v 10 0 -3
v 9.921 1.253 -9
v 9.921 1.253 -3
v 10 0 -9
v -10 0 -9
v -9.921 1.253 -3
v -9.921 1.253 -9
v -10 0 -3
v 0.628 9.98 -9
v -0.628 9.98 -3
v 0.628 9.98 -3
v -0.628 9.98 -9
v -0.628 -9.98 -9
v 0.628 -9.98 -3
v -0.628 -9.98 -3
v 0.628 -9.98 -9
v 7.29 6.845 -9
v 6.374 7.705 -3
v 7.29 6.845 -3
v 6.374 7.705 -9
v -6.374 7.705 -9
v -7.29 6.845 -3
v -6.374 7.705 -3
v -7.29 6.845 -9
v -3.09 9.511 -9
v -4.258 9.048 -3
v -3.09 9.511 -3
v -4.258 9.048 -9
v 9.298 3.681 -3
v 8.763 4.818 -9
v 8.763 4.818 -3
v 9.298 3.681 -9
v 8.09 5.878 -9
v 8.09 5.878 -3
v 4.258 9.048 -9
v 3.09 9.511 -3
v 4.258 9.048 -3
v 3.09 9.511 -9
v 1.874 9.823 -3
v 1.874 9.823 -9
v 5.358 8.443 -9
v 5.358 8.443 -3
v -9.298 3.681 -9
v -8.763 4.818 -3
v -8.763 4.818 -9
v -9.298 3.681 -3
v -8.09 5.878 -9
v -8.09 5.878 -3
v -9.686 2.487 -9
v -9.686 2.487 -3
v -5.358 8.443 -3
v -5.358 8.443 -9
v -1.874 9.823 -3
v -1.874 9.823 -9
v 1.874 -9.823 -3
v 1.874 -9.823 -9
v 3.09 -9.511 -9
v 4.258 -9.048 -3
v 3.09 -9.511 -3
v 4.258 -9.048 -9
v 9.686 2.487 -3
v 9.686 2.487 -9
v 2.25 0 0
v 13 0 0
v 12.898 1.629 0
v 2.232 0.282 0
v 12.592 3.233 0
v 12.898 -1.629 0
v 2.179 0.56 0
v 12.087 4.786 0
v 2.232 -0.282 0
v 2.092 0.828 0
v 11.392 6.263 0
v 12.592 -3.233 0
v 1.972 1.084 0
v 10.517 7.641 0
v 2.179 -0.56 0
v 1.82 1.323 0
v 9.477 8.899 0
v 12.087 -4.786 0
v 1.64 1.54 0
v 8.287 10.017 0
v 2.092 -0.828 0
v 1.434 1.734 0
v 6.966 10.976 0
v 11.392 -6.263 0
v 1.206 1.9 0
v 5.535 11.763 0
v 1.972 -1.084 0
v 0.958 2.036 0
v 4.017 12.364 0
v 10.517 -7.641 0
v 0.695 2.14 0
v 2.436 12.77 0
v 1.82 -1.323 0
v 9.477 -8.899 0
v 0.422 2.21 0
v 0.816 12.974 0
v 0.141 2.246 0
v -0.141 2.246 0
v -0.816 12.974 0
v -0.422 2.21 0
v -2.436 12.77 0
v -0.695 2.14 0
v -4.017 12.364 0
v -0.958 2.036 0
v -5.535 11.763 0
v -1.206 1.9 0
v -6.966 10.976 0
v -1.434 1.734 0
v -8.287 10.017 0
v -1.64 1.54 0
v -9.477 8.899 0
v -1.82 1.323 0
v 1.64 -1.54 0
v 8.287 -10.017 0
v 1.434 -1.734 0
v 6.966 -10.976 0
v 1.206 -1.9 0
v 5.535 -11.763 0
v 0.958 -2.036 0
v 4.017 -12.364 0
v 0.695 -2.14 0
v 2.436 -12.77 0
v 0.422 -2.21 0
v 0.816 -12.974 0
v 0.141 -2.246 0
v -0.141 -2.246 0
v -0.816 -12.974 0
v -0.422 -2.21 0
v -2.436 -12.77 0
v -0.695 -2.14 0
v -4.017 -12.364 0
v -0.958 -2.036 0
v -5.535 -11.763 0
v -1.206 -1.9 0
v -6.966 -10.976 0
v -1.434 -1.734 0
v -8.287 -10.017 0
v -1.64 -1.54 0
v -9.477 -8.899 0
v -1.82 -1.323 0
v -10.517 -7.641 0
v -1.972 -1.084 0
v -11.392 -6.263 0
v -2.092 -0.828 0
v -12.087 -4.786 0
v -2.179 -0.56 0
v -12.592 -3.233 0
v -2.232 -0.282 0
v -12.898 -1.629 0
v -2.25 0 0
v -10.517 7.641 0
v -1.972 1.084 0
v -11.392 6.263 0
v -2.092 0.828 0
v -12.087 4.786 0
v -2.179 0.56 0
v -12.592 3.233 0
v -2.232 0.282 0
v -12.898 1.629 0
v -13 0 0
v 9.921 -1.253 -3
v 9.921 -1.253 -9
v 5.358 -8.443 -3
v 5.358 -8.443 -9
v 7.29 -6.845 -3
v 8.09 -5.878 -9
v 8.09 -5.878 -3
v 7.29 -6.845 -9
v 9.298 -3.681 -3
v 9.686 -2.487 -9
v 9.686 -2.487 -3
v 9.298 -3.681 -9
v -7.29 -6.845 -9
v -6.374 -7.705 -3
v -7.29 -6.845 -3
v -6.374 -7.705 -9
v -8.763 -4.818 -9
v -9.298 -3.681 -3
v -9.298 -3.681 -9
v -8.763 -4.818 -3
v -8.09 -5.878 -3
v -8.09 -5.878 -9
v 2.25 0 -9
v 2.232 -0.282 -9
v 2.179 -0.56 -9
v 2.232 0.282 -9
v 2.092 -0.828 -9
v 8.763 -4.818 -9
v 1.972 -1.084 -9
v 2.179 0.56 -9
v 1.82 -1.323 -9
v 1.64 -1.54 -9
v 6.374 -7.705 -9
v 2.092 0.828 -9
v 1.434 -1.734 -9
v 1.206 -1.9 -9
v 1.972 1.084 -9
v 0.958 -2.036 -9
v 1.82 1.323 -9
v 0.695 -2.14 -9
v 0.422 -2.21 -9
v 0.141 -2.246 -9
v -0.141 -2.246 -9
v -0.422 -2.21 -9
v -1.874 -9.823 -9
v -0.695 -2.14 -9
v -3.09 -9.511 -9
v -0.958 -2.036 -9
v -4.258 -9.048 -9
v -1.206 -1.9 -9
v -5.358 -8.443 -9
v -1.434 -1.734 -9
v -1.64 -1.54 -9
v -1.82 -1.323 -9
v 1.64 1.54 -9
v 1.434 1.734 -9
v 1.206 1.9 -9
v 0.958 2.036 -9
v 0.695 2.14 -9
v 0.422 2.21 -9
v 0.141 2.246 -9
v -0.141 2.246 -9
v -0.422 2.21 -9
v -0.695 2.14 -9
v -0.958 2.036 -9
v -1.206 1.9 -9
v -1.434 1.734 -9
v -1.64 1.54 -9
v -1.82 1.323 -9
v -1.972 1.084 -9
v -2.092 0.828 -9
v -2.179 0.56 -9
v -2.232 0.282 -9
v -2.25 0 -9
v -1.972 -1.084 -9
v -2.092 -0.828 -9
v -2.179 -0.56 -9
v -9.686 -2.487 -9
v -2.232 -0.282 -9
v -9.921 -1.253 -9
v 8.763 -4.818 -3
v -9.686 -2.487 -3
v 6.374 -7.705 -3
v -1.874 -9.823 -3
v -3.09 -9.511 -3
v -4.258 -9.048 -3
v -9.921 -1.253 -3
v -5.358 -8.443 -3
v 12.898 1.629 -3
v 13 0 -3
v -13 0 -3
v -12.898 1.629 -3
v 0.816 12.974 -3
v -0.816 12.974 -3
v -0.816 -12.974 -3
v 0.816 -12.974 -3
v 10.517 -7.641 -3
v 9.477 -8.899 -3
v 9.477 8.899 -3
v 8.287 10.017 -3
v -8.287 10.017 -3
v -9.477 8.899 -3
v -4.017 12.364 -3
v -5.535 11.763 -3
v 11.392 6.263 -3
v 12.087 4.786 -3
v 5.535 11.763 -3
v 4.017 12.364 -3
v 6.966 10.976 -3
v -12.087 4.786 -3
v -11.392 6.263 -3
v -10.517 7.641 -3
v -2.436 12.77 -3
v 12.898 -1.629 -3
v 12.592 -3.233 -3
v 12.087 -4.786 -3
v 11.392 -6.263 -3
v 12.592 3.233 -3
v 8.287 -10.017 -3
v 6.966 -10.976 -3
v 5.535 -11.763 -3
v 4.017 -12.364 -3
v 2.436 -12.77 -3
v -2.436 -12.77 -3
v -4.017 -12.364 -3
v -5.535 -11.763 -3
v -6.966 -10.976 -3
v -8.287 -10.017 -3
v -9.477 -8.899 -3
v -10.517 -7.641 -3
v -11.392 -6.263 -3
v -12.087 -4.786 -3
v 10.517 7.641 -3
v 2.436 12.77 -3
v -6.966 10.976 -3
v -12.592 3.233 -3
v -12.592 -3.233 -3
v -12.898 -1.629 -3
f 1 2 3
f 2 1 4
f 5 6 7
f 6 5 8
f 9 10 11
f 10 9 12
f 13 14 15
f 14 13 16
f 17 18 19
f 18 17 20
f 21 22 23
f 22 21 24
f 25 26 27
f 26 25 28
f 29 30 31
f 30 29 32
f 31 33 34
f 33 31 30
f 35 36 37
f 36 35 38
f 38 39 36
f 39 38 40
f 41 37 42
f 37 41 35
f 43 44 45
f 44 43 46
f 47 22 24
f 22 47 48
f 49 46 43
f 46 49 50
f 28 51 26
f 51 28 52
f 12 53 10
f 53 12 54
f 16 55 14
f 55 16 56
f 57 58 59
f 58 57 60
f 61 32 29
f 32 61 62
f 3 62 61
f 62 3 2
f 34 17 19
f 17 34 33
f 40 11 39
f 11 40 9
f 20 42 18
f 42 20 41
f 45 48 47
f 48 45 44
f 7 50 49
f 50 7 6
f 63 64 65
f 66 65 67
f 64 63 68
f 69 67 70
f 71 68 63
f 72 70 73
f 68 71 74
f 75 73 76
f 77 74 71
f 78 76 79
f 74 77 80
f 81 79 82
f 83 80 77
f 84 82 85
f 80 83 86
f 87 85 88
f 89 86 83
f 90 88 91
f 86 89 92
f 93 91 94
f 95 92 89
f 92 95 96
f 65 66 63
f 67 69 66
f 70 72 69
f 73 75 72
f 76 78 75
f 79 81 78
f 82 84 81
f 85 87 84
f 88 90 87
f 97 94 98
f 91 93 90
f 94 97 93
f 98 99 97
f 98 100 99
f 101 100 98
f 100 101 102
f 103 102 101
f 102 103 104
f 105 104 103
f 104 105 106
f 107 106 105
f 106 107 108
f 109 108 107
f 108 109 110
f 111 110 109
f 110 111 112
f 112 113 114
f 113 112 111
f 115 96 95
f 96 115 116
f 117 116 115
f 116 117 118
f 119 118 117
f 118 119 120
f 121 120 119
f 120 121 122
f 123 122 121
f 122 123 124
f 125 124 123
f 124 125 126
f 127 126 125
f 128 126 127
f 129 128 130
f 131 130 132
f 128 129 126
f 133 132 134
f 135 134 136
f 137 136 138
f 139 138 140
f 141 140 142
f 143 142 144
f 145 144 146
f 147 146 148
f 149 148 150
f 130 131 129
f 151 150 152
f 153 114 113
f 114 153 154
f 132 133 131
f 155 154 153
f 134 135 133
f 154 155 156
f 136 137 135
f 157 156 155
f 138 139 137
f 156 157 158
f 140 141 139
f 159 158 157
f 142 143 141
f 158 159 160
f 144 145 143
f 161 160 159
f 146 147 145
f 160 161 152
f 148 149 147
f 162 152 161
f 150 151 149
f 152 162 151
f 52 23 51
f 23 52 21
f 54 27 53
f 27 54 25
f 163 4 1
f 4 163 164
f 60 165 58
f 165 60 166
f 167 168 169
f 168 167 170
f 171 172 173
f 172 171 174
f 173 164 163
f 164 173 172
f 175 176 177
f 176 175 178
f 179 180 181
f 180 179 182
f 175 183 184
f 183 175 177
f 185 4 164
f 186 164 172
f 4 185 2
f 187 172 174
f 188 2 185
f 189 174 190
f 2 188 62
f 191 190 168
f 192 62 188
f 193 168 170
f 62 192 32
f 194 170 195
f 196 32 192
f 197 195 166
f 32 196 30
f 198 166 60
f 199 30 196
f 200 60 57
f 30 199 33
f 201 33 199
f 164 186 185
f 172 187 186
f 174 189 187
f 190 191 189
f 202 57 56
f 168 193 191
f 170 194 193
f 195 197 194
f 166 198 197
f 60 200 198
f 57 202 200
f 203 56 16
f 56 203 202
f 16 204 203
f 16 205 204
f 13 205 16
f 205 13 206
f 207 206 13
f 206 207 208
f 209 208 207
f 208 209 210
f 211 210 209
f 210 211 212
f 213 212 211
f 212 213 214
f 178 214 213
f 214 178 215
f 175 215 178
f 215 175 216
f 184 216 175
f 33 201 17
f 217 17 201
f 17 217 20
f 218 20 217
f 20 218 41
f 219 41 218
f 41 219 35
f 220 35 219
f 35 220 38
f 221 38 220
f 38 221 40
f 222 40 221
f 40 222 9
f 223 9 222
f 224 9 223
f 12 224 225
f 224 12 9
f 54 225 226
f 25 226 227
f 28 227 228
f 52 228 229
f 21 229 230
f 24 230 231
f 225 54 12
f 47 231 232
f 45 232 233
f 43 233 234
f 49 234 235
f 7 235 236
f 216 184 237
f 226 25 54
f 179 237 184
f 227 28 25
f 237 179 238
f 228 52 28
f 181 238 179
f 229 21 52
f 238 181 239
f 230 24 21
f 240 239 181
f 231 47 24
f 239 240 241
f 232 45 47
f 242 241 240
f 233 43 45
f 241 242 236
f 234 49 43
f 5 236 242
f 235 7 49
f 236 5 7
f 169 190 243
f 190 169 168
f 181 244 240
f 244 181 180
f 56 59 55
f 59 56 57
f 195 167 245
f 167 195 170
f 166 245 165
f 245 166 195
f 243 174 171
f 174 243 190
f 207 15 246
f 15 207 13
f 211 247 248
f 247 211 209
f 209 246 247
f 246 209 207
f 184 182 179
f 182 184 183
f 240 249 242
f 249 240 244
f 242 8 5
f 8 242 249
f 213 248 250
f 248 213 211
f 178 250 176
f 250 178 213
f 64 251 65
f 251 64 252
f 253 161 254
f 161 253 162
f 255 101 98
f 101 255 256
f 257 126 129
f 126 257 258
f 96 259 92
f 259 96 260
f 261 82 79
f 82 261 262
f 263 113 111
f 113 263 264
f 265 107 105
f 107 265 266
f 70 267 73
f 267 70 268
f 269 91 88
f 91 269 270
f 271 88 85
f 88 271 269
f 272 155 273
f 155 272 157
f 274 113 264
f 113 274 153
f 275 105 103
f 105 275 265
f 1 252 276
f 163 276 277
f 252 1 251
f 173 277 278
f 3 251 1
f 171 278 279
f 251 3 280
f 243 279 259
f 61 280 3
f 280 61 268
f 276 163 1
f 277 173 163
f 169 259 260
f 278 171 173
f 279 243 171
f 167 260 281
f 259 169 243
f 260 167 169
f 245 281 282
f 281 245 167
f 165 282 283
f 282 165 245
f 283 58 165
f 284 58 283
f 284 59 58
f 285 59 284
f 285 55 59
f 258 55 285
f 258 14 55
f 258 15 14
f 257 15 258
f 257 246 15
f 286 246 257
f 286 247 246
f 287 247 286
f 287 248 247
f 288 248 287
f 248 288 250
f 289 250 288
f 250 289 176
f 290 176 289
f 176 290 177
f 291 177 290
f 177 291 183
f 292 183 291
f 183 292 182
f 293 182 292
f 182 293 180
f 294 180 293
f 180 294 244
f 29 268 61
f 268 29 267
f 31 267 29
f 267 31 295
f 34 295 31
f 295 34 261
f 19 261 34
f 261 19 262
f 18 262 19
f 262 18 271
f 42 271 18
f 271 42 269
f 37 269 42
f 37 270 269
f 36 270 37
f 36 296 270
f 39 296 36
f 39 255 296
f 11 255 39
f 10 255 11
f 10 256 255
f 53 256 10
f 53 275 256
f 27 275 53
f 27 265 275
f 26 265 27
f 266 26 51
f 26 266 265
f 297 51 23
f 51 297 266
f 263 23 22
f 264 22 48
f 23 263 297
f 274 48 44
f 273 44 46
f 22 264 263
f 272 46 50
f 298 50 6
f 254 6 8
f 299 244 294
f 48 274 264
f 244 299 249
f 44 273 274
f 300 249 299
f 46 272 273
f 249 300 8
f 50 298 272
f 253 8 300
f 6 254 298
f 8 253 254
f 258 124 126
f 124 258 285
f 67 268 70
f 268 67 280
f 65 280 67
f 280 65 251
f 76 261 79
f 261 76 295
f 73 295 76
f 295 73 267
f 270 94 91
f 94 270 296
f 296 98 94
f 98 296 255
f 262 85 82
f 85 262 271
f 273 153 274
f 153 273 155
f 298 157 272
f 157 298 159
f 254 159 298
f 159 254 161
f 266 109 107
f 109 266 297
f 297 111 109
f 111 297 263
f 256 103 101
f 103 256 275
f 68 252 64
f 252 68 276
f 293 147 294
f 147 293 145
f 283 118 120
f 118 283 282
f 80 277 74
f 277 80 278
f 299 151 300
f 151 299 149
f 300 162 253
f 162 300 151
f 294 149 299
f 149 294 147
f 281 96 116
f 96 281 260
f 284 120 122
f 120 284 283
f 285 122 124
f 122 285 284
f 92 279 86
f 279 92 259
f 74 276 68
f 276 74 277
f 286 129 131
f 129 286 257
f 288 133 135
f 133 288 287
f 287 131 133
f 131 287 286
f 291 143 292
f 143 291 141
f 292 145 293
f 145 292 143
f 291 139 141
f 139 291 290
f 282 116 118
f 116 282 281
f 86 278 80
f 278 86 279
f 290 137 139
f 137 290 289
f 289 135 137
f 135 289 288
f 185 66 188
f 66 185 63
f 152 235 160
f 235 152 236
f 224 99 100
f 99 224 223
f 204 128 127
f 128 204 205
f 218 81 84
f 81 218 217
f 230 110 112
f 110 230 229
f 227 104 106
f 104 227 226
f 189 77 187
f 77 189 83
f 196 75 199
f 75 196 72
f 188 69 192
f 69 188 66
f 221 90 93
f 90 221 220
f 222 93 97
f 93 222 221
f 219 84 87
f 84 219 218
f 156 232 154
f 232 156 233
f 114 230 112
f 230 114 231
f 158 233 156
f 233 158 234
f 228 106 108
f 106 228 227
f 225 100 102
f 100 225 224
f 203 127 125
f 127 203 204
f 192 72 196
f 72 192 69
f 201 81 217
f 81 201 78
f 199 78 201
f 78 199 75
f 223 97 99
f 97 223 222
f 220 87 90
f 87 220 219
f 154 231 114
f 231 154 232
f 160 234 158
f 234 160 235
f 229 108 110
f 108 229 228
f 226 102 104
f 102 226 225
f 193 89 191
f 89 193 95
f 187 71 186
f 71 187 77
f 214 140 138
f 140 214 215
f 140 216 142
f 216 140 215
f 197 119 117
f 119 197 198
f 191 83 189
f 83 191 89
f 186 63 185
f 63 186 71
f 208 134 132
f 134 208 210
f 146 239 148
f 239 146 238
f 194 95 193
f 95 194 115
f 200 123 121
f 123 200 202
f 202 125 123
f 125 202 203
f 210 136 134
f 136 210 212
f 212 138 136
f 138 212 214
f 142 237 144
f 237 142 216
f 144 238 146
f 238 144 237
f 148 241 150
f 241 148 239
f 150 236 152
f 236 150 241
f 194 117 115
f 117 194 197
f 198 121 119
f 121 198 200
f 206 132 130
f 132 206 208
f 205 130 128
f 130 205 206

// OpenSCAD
$fn = 50;


difference() {
	union() {
		translate(v = [0, 0, -9.0000000000]) {
			cylinder(h = 9, r = 10.0000000000);
		}
		translate(v = [0, 0, -3.0000000000]) {
			cylinder(h = 3, r = 13.0000000000);
		}
	}
	union() {
		#translate(v = [0, 0, -9]) {
			cylinder(h = 9, r = 2.2500000000);
		}
	}
}
